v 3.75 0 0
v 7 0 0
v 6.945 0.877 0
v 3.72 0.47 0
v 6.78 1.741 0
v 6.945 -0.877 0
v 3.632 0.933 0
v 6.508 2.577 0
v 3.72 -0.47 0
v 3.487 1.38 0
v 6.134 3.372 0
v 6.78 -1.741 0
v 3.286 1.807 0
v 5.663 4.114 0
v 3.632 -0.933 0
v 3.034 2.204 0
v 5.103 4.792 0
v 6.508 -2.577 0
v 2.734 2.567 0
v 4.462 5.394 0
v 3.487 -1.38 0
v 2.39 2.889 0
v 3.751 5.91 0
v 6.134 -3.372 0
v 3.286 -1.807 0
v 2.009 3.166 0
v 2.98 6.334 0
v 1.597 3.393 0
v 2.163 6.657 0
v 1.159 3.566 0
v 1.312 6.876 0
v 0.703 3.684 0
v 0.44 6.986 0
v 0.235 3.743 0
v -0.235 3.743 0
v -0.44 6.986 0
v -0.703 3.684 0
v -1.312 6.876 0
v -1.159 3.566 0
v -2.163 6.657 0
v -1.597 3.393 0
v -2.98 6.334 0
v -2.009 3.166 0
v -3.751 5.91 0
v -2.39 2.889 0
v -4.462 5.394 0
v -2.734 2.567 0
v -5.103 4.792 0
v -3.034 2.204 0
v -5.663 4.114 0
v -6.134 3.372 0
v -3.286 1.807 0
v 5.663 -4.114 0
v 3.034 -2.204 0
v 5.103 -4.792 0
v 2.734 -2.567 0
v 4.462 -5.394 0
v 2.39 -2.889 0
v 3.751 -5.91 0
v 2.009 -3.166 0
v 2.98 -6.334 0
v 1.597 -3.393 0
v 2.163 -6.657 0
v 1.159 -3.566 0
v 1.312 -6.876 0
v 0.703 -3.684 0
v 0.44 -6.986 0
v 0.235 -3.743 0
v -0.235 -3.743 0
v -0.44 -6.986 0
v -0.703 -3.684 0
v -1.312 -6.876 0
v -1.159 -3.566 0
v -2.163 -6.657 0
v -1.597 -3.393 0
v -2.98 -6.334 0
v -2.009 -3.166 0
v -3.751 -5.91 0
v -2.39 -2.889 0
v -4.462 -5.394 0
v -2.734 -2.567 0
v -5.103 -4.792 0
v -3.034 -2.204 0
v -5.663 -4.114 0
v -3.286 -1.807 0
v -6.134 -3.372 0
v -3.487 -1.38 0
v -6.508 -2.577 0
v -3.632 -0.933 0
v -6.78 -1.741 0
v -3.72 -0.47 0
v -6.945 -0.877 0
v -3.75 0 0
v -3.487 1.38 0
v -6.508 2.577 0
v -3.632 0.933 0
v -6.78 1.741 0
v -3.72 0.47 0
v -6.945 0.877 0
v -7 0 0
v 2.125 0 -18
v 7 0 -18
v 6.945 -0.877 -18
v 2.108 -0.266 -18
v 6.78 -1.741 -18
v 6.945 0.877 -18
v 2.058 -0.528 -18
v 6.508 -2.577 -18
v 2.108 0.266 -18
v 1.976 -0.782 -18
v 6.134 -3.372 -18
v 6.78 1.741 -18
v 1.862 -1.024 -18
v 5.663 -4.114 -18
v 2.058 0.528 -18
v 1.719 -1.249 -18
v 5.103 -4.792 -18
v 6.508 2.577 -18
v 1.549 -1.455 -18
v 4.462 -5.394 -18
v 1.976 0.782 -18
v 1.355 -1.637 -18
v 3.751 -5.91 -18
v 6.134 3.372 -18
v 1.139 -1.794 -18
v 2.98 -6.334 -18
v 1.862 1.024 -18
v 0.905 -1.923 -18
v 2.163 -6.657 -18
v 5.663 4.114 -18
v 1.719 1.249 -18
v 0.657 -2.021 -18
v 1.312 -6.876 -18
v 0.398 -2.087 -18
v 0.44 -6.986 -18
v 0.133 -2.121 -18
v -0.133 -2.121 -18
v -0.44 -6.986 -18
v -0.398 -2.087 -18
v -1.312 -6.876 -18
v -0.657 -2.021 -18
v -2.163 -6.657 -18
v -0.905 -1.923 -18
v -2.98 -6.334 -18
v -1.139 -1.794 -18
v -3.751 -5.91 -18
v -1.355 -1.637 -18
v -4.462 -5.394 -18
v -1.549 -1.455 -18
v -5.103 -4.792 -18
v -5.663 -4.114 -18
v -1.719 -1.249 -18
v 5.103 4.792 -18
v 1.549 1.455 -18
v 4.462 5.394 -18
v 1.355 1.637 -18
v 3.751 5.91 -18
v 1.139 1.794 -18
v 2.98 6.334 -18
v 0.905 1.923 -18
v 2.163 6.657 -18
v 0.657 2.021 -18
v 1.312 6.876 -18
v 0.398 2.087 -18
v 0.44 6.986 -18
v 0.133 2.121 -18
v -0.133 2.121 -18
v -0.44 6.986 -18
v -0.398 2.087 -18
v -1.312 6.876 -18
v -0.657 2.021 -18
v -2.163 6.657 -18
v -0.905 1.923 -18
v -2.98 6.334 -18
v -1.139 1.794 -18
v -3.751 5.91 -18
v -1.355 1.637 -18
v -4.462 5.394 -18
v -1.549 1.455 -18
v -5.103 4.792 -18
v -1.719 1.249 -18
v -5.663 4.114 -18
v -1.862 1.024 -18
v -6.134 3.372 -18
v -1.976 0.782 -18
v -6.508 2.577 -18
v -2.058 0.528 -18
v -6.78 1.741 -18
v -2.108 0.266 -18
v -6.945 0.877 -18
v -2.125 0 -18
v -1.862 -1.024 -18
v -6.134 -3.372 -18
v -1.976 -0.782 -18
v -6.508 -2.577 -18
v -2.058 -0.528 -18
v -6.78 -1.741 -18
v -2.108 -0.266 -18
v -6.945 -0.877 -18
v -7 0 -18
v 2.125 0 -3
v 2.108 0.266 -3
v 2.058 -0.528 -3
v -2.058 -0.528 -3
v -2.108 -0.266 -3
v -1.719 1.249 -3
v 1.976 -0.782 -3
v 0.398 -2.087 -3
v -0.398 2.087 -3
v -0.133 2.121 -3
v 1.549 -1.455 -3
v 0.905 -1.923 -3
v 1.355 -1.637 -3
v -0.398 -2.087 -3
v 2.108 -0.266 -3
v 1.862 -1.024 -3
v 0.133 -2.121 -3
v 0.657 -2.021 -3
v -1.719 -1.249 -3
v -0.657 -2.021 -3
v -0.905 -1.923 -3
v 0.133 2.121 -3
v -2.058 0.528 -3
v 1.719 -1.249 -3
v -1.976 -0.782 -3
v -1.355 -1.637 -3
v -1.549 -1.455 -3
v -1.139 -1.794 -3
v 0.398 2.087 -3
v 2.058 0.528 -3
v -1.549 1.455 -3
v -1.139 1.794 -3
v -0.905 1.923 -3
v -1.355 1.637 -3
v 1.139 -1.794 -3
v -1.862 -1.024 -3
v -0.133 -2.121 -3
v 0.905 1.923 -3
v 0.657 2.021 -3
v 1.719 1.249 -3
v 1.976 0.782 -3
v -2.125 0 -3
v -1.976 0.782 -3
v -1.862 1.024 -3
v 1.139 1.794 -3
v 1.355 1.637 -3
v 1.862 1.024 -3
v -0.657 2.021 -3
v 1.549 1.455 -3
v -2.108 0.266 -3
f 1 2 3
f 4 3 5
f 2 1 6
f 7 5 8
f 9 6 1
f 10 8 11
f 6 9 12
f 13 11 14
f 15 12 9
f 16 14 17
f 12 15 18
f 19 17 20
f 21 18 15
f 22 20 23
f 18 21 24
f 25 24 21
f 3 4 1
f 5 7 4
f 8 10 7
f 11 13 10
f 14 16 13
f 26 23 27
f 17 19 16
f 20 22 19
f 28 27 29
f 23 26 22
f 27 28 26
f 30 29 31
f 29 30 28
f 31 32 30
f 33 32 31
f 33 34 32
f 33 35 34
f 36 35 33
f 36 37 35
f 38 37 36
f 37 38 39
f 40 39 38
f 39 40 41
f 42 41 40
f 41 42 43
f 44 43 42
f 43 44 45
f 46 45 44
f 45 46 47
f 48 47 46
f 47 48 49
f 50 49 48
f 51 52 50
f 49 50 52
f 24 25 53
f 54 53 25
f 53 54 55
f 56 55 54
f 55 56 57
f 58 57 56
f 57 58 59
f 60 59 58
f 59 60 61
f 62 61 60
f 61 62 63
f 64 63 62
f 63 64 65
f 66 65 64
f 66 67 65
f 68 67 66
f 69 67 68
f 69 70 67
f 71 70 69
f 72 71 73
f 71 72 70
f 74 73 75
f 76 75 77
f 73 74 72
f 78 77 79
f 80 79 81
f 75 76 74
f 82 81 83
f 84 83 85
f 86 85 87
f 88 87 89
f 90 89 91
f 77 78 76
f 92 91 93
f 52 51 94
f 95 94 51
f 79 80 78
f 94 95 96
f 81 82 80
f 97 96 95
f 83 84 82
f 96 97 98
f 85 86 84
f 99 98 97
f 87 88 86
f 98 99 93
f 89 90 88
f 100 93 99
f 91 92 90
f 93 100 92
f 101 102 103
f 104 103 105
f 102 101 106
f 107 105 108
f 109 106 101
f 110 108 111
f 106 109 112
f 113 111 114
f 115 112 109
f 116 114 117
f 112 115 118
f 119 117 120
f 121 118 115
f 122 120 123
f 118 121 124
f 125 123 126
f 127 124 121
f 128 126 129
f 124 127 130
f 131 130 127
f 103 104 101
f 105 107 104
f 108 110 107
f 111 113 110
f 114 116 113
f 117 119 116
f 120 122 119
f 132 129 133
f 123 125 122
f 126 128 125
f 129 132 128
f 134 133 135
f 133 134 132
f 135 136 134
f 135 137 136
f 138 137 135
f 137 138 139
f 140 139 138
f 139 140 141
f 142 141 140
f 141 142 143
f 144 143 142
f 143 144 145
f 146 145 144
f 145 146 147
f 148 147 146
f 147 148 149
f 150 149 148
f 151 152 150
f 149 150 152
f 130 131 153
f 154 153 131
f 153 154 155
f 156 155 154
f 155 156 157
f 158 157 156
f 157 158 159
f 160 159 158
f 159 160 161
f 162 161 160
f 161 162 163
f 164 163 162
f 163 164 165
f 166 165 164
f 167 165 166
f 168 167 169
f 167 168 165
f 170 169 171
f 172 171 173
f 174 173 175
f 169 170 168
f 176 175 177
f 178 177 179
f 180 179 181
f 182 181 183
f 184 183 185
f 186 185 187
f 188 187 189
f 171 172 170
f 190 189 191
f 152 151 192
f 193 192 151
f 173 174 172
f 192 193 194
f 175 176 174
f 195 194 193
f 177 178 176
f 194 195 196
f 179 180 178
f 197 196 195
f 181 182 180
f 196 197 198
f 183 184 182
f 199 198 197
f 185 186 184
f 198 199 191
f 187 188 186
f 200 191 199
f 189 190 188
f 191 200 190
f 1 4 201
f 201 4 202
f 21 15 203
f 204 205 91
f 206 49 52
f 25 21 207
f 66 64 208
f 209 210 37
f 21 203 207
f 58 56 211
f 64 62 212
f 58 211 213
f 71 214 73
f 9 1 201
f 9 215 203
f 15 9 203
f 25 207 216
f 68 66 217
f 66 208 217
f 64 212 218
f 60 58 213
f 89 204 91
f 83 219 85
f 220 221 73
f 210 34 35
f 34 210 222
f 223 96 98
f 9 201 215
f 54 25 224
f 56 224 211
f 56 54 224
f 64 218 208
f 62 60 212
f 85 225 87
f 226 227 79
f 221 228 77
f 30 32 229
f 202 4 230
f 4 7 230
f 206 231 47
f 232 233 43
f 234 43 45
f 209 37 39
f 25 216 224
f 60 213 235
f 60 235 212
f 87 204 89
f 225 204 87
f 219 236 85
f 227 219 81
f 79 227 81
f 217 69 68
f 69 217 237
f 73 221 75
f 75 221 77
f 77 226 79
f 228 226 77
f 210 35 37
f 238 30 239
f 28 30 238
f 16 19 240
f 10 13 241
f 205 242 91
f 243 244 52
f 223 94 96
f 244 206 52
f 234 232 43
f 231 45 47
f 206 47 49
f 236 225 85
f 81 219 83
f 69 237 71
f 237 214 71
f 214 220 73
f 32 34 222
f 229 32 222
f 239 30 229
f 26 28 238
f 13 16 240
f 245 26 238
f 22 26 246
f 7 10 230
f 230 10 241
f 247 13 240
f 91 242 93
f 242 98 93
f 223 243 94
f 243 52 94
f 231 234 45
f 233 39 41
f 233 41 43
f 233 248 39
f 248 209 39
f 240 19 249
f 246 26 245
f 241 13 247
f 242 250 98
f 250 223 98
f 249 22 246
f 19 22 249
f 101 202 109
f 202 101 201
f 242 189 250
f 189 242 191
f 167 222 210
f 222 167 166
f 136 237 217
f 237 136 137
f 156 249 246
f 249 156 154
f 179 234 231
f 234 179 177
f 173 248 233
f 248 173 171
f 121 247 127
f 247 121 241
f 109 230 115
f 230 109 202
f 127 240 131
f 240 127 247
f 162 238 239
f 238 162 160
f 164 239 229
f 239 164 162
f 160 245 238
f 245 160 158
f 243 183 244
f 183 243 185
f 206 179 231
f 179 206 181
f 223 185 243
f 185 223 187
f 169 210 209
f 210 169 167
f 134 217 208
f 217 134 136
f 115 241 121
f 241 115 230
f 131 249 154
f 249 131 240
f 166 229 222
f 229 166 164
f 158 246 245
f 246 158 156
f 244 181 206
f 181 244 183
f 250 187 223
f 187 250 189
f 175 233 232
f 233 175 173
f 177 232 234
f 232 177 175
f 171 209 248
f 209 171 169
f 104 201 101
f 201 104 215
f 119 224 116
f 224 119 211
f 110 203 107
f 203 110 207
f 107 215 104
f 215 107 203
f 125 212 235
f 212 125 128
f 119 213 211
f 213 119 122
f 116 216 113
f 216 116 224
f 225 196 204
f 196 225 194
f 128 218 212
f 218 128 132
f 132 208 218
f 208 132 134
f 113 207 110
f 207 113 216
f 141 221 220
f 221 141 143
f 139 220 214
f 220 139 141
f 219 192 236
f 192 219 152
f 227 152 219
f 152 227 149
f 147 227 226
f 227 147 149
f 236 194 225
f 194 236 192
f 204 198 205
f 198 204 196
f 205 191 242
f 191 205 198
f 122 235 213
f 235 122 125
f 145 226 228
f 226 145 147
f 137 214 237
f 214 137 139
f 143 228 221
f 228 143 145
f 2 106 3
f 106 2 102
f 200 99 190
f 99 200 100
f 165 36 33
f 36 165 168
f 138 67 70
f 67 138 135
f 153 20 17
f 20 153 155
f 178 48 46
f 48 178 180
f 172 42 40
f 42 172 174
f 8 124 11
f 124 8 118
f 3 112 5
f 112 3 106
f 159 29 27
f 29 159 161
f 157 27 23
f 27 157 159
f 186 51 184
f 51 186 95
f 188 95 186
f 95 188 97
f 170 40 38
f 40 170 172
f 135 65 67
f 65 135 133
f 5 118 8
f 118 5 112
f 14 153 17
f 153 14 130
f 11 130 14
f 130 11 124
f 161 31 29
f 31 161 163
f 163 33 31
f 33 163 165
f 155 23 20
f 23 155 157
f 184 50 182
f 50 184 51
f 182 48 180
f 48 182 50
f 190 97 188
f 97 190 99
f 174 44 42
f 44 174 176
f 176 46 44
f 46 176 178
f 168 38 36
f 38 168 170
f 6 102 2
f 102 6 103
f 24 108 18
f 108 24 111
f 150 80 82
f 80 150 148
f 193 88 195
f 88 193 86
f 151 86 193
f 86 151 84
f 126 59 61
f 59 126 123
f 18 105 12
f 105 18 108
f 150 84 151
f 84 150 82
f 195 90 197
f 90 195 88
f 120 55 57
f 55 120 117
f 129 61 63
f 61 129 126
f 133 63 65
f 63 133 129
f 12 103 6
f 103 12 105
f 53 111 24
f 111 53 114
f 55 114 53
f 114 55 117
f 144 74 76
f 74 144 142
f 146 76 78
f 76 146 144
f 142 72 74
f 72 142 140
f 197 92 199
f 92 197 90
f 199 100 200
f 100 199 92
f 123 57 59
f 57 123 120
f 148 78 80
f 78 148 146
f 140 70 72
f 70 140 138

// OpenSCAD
$fn = 50;


difference() {
	union() {
		translate(v = [0, 0, -18.0000000000]) {
			cylinder(h = 18, r = 7.0000000000);
		}
		cylinder(h = 0, r = 10.0000000000);
	}
	union() {
		translate(v = [0, 0, 0]) {
			rotate(a = [0, 0, 0]) {
				difference() {
					union() {
						#translate(v = [0, 0, -18.0000000000]) {
							cylinder(h = 18, r = 2.0000000000);
						}
						#translate(v = [0, 0, -3]) {
							cylinder(h = 3, r1 = 2.1250000000, r2 = 3.7500000000);
						}
						#translate(v = [0, 0, -18.0000000000]) {
							cylinder(h = 18, r = 2.1250000000);
						}
						#translate(v = [0, 0, -18.0000000000]) {
							cylinder(h = 18, r = 2.0000000000);
						}
					}
					union();
				}
			}
		}
	}
}
